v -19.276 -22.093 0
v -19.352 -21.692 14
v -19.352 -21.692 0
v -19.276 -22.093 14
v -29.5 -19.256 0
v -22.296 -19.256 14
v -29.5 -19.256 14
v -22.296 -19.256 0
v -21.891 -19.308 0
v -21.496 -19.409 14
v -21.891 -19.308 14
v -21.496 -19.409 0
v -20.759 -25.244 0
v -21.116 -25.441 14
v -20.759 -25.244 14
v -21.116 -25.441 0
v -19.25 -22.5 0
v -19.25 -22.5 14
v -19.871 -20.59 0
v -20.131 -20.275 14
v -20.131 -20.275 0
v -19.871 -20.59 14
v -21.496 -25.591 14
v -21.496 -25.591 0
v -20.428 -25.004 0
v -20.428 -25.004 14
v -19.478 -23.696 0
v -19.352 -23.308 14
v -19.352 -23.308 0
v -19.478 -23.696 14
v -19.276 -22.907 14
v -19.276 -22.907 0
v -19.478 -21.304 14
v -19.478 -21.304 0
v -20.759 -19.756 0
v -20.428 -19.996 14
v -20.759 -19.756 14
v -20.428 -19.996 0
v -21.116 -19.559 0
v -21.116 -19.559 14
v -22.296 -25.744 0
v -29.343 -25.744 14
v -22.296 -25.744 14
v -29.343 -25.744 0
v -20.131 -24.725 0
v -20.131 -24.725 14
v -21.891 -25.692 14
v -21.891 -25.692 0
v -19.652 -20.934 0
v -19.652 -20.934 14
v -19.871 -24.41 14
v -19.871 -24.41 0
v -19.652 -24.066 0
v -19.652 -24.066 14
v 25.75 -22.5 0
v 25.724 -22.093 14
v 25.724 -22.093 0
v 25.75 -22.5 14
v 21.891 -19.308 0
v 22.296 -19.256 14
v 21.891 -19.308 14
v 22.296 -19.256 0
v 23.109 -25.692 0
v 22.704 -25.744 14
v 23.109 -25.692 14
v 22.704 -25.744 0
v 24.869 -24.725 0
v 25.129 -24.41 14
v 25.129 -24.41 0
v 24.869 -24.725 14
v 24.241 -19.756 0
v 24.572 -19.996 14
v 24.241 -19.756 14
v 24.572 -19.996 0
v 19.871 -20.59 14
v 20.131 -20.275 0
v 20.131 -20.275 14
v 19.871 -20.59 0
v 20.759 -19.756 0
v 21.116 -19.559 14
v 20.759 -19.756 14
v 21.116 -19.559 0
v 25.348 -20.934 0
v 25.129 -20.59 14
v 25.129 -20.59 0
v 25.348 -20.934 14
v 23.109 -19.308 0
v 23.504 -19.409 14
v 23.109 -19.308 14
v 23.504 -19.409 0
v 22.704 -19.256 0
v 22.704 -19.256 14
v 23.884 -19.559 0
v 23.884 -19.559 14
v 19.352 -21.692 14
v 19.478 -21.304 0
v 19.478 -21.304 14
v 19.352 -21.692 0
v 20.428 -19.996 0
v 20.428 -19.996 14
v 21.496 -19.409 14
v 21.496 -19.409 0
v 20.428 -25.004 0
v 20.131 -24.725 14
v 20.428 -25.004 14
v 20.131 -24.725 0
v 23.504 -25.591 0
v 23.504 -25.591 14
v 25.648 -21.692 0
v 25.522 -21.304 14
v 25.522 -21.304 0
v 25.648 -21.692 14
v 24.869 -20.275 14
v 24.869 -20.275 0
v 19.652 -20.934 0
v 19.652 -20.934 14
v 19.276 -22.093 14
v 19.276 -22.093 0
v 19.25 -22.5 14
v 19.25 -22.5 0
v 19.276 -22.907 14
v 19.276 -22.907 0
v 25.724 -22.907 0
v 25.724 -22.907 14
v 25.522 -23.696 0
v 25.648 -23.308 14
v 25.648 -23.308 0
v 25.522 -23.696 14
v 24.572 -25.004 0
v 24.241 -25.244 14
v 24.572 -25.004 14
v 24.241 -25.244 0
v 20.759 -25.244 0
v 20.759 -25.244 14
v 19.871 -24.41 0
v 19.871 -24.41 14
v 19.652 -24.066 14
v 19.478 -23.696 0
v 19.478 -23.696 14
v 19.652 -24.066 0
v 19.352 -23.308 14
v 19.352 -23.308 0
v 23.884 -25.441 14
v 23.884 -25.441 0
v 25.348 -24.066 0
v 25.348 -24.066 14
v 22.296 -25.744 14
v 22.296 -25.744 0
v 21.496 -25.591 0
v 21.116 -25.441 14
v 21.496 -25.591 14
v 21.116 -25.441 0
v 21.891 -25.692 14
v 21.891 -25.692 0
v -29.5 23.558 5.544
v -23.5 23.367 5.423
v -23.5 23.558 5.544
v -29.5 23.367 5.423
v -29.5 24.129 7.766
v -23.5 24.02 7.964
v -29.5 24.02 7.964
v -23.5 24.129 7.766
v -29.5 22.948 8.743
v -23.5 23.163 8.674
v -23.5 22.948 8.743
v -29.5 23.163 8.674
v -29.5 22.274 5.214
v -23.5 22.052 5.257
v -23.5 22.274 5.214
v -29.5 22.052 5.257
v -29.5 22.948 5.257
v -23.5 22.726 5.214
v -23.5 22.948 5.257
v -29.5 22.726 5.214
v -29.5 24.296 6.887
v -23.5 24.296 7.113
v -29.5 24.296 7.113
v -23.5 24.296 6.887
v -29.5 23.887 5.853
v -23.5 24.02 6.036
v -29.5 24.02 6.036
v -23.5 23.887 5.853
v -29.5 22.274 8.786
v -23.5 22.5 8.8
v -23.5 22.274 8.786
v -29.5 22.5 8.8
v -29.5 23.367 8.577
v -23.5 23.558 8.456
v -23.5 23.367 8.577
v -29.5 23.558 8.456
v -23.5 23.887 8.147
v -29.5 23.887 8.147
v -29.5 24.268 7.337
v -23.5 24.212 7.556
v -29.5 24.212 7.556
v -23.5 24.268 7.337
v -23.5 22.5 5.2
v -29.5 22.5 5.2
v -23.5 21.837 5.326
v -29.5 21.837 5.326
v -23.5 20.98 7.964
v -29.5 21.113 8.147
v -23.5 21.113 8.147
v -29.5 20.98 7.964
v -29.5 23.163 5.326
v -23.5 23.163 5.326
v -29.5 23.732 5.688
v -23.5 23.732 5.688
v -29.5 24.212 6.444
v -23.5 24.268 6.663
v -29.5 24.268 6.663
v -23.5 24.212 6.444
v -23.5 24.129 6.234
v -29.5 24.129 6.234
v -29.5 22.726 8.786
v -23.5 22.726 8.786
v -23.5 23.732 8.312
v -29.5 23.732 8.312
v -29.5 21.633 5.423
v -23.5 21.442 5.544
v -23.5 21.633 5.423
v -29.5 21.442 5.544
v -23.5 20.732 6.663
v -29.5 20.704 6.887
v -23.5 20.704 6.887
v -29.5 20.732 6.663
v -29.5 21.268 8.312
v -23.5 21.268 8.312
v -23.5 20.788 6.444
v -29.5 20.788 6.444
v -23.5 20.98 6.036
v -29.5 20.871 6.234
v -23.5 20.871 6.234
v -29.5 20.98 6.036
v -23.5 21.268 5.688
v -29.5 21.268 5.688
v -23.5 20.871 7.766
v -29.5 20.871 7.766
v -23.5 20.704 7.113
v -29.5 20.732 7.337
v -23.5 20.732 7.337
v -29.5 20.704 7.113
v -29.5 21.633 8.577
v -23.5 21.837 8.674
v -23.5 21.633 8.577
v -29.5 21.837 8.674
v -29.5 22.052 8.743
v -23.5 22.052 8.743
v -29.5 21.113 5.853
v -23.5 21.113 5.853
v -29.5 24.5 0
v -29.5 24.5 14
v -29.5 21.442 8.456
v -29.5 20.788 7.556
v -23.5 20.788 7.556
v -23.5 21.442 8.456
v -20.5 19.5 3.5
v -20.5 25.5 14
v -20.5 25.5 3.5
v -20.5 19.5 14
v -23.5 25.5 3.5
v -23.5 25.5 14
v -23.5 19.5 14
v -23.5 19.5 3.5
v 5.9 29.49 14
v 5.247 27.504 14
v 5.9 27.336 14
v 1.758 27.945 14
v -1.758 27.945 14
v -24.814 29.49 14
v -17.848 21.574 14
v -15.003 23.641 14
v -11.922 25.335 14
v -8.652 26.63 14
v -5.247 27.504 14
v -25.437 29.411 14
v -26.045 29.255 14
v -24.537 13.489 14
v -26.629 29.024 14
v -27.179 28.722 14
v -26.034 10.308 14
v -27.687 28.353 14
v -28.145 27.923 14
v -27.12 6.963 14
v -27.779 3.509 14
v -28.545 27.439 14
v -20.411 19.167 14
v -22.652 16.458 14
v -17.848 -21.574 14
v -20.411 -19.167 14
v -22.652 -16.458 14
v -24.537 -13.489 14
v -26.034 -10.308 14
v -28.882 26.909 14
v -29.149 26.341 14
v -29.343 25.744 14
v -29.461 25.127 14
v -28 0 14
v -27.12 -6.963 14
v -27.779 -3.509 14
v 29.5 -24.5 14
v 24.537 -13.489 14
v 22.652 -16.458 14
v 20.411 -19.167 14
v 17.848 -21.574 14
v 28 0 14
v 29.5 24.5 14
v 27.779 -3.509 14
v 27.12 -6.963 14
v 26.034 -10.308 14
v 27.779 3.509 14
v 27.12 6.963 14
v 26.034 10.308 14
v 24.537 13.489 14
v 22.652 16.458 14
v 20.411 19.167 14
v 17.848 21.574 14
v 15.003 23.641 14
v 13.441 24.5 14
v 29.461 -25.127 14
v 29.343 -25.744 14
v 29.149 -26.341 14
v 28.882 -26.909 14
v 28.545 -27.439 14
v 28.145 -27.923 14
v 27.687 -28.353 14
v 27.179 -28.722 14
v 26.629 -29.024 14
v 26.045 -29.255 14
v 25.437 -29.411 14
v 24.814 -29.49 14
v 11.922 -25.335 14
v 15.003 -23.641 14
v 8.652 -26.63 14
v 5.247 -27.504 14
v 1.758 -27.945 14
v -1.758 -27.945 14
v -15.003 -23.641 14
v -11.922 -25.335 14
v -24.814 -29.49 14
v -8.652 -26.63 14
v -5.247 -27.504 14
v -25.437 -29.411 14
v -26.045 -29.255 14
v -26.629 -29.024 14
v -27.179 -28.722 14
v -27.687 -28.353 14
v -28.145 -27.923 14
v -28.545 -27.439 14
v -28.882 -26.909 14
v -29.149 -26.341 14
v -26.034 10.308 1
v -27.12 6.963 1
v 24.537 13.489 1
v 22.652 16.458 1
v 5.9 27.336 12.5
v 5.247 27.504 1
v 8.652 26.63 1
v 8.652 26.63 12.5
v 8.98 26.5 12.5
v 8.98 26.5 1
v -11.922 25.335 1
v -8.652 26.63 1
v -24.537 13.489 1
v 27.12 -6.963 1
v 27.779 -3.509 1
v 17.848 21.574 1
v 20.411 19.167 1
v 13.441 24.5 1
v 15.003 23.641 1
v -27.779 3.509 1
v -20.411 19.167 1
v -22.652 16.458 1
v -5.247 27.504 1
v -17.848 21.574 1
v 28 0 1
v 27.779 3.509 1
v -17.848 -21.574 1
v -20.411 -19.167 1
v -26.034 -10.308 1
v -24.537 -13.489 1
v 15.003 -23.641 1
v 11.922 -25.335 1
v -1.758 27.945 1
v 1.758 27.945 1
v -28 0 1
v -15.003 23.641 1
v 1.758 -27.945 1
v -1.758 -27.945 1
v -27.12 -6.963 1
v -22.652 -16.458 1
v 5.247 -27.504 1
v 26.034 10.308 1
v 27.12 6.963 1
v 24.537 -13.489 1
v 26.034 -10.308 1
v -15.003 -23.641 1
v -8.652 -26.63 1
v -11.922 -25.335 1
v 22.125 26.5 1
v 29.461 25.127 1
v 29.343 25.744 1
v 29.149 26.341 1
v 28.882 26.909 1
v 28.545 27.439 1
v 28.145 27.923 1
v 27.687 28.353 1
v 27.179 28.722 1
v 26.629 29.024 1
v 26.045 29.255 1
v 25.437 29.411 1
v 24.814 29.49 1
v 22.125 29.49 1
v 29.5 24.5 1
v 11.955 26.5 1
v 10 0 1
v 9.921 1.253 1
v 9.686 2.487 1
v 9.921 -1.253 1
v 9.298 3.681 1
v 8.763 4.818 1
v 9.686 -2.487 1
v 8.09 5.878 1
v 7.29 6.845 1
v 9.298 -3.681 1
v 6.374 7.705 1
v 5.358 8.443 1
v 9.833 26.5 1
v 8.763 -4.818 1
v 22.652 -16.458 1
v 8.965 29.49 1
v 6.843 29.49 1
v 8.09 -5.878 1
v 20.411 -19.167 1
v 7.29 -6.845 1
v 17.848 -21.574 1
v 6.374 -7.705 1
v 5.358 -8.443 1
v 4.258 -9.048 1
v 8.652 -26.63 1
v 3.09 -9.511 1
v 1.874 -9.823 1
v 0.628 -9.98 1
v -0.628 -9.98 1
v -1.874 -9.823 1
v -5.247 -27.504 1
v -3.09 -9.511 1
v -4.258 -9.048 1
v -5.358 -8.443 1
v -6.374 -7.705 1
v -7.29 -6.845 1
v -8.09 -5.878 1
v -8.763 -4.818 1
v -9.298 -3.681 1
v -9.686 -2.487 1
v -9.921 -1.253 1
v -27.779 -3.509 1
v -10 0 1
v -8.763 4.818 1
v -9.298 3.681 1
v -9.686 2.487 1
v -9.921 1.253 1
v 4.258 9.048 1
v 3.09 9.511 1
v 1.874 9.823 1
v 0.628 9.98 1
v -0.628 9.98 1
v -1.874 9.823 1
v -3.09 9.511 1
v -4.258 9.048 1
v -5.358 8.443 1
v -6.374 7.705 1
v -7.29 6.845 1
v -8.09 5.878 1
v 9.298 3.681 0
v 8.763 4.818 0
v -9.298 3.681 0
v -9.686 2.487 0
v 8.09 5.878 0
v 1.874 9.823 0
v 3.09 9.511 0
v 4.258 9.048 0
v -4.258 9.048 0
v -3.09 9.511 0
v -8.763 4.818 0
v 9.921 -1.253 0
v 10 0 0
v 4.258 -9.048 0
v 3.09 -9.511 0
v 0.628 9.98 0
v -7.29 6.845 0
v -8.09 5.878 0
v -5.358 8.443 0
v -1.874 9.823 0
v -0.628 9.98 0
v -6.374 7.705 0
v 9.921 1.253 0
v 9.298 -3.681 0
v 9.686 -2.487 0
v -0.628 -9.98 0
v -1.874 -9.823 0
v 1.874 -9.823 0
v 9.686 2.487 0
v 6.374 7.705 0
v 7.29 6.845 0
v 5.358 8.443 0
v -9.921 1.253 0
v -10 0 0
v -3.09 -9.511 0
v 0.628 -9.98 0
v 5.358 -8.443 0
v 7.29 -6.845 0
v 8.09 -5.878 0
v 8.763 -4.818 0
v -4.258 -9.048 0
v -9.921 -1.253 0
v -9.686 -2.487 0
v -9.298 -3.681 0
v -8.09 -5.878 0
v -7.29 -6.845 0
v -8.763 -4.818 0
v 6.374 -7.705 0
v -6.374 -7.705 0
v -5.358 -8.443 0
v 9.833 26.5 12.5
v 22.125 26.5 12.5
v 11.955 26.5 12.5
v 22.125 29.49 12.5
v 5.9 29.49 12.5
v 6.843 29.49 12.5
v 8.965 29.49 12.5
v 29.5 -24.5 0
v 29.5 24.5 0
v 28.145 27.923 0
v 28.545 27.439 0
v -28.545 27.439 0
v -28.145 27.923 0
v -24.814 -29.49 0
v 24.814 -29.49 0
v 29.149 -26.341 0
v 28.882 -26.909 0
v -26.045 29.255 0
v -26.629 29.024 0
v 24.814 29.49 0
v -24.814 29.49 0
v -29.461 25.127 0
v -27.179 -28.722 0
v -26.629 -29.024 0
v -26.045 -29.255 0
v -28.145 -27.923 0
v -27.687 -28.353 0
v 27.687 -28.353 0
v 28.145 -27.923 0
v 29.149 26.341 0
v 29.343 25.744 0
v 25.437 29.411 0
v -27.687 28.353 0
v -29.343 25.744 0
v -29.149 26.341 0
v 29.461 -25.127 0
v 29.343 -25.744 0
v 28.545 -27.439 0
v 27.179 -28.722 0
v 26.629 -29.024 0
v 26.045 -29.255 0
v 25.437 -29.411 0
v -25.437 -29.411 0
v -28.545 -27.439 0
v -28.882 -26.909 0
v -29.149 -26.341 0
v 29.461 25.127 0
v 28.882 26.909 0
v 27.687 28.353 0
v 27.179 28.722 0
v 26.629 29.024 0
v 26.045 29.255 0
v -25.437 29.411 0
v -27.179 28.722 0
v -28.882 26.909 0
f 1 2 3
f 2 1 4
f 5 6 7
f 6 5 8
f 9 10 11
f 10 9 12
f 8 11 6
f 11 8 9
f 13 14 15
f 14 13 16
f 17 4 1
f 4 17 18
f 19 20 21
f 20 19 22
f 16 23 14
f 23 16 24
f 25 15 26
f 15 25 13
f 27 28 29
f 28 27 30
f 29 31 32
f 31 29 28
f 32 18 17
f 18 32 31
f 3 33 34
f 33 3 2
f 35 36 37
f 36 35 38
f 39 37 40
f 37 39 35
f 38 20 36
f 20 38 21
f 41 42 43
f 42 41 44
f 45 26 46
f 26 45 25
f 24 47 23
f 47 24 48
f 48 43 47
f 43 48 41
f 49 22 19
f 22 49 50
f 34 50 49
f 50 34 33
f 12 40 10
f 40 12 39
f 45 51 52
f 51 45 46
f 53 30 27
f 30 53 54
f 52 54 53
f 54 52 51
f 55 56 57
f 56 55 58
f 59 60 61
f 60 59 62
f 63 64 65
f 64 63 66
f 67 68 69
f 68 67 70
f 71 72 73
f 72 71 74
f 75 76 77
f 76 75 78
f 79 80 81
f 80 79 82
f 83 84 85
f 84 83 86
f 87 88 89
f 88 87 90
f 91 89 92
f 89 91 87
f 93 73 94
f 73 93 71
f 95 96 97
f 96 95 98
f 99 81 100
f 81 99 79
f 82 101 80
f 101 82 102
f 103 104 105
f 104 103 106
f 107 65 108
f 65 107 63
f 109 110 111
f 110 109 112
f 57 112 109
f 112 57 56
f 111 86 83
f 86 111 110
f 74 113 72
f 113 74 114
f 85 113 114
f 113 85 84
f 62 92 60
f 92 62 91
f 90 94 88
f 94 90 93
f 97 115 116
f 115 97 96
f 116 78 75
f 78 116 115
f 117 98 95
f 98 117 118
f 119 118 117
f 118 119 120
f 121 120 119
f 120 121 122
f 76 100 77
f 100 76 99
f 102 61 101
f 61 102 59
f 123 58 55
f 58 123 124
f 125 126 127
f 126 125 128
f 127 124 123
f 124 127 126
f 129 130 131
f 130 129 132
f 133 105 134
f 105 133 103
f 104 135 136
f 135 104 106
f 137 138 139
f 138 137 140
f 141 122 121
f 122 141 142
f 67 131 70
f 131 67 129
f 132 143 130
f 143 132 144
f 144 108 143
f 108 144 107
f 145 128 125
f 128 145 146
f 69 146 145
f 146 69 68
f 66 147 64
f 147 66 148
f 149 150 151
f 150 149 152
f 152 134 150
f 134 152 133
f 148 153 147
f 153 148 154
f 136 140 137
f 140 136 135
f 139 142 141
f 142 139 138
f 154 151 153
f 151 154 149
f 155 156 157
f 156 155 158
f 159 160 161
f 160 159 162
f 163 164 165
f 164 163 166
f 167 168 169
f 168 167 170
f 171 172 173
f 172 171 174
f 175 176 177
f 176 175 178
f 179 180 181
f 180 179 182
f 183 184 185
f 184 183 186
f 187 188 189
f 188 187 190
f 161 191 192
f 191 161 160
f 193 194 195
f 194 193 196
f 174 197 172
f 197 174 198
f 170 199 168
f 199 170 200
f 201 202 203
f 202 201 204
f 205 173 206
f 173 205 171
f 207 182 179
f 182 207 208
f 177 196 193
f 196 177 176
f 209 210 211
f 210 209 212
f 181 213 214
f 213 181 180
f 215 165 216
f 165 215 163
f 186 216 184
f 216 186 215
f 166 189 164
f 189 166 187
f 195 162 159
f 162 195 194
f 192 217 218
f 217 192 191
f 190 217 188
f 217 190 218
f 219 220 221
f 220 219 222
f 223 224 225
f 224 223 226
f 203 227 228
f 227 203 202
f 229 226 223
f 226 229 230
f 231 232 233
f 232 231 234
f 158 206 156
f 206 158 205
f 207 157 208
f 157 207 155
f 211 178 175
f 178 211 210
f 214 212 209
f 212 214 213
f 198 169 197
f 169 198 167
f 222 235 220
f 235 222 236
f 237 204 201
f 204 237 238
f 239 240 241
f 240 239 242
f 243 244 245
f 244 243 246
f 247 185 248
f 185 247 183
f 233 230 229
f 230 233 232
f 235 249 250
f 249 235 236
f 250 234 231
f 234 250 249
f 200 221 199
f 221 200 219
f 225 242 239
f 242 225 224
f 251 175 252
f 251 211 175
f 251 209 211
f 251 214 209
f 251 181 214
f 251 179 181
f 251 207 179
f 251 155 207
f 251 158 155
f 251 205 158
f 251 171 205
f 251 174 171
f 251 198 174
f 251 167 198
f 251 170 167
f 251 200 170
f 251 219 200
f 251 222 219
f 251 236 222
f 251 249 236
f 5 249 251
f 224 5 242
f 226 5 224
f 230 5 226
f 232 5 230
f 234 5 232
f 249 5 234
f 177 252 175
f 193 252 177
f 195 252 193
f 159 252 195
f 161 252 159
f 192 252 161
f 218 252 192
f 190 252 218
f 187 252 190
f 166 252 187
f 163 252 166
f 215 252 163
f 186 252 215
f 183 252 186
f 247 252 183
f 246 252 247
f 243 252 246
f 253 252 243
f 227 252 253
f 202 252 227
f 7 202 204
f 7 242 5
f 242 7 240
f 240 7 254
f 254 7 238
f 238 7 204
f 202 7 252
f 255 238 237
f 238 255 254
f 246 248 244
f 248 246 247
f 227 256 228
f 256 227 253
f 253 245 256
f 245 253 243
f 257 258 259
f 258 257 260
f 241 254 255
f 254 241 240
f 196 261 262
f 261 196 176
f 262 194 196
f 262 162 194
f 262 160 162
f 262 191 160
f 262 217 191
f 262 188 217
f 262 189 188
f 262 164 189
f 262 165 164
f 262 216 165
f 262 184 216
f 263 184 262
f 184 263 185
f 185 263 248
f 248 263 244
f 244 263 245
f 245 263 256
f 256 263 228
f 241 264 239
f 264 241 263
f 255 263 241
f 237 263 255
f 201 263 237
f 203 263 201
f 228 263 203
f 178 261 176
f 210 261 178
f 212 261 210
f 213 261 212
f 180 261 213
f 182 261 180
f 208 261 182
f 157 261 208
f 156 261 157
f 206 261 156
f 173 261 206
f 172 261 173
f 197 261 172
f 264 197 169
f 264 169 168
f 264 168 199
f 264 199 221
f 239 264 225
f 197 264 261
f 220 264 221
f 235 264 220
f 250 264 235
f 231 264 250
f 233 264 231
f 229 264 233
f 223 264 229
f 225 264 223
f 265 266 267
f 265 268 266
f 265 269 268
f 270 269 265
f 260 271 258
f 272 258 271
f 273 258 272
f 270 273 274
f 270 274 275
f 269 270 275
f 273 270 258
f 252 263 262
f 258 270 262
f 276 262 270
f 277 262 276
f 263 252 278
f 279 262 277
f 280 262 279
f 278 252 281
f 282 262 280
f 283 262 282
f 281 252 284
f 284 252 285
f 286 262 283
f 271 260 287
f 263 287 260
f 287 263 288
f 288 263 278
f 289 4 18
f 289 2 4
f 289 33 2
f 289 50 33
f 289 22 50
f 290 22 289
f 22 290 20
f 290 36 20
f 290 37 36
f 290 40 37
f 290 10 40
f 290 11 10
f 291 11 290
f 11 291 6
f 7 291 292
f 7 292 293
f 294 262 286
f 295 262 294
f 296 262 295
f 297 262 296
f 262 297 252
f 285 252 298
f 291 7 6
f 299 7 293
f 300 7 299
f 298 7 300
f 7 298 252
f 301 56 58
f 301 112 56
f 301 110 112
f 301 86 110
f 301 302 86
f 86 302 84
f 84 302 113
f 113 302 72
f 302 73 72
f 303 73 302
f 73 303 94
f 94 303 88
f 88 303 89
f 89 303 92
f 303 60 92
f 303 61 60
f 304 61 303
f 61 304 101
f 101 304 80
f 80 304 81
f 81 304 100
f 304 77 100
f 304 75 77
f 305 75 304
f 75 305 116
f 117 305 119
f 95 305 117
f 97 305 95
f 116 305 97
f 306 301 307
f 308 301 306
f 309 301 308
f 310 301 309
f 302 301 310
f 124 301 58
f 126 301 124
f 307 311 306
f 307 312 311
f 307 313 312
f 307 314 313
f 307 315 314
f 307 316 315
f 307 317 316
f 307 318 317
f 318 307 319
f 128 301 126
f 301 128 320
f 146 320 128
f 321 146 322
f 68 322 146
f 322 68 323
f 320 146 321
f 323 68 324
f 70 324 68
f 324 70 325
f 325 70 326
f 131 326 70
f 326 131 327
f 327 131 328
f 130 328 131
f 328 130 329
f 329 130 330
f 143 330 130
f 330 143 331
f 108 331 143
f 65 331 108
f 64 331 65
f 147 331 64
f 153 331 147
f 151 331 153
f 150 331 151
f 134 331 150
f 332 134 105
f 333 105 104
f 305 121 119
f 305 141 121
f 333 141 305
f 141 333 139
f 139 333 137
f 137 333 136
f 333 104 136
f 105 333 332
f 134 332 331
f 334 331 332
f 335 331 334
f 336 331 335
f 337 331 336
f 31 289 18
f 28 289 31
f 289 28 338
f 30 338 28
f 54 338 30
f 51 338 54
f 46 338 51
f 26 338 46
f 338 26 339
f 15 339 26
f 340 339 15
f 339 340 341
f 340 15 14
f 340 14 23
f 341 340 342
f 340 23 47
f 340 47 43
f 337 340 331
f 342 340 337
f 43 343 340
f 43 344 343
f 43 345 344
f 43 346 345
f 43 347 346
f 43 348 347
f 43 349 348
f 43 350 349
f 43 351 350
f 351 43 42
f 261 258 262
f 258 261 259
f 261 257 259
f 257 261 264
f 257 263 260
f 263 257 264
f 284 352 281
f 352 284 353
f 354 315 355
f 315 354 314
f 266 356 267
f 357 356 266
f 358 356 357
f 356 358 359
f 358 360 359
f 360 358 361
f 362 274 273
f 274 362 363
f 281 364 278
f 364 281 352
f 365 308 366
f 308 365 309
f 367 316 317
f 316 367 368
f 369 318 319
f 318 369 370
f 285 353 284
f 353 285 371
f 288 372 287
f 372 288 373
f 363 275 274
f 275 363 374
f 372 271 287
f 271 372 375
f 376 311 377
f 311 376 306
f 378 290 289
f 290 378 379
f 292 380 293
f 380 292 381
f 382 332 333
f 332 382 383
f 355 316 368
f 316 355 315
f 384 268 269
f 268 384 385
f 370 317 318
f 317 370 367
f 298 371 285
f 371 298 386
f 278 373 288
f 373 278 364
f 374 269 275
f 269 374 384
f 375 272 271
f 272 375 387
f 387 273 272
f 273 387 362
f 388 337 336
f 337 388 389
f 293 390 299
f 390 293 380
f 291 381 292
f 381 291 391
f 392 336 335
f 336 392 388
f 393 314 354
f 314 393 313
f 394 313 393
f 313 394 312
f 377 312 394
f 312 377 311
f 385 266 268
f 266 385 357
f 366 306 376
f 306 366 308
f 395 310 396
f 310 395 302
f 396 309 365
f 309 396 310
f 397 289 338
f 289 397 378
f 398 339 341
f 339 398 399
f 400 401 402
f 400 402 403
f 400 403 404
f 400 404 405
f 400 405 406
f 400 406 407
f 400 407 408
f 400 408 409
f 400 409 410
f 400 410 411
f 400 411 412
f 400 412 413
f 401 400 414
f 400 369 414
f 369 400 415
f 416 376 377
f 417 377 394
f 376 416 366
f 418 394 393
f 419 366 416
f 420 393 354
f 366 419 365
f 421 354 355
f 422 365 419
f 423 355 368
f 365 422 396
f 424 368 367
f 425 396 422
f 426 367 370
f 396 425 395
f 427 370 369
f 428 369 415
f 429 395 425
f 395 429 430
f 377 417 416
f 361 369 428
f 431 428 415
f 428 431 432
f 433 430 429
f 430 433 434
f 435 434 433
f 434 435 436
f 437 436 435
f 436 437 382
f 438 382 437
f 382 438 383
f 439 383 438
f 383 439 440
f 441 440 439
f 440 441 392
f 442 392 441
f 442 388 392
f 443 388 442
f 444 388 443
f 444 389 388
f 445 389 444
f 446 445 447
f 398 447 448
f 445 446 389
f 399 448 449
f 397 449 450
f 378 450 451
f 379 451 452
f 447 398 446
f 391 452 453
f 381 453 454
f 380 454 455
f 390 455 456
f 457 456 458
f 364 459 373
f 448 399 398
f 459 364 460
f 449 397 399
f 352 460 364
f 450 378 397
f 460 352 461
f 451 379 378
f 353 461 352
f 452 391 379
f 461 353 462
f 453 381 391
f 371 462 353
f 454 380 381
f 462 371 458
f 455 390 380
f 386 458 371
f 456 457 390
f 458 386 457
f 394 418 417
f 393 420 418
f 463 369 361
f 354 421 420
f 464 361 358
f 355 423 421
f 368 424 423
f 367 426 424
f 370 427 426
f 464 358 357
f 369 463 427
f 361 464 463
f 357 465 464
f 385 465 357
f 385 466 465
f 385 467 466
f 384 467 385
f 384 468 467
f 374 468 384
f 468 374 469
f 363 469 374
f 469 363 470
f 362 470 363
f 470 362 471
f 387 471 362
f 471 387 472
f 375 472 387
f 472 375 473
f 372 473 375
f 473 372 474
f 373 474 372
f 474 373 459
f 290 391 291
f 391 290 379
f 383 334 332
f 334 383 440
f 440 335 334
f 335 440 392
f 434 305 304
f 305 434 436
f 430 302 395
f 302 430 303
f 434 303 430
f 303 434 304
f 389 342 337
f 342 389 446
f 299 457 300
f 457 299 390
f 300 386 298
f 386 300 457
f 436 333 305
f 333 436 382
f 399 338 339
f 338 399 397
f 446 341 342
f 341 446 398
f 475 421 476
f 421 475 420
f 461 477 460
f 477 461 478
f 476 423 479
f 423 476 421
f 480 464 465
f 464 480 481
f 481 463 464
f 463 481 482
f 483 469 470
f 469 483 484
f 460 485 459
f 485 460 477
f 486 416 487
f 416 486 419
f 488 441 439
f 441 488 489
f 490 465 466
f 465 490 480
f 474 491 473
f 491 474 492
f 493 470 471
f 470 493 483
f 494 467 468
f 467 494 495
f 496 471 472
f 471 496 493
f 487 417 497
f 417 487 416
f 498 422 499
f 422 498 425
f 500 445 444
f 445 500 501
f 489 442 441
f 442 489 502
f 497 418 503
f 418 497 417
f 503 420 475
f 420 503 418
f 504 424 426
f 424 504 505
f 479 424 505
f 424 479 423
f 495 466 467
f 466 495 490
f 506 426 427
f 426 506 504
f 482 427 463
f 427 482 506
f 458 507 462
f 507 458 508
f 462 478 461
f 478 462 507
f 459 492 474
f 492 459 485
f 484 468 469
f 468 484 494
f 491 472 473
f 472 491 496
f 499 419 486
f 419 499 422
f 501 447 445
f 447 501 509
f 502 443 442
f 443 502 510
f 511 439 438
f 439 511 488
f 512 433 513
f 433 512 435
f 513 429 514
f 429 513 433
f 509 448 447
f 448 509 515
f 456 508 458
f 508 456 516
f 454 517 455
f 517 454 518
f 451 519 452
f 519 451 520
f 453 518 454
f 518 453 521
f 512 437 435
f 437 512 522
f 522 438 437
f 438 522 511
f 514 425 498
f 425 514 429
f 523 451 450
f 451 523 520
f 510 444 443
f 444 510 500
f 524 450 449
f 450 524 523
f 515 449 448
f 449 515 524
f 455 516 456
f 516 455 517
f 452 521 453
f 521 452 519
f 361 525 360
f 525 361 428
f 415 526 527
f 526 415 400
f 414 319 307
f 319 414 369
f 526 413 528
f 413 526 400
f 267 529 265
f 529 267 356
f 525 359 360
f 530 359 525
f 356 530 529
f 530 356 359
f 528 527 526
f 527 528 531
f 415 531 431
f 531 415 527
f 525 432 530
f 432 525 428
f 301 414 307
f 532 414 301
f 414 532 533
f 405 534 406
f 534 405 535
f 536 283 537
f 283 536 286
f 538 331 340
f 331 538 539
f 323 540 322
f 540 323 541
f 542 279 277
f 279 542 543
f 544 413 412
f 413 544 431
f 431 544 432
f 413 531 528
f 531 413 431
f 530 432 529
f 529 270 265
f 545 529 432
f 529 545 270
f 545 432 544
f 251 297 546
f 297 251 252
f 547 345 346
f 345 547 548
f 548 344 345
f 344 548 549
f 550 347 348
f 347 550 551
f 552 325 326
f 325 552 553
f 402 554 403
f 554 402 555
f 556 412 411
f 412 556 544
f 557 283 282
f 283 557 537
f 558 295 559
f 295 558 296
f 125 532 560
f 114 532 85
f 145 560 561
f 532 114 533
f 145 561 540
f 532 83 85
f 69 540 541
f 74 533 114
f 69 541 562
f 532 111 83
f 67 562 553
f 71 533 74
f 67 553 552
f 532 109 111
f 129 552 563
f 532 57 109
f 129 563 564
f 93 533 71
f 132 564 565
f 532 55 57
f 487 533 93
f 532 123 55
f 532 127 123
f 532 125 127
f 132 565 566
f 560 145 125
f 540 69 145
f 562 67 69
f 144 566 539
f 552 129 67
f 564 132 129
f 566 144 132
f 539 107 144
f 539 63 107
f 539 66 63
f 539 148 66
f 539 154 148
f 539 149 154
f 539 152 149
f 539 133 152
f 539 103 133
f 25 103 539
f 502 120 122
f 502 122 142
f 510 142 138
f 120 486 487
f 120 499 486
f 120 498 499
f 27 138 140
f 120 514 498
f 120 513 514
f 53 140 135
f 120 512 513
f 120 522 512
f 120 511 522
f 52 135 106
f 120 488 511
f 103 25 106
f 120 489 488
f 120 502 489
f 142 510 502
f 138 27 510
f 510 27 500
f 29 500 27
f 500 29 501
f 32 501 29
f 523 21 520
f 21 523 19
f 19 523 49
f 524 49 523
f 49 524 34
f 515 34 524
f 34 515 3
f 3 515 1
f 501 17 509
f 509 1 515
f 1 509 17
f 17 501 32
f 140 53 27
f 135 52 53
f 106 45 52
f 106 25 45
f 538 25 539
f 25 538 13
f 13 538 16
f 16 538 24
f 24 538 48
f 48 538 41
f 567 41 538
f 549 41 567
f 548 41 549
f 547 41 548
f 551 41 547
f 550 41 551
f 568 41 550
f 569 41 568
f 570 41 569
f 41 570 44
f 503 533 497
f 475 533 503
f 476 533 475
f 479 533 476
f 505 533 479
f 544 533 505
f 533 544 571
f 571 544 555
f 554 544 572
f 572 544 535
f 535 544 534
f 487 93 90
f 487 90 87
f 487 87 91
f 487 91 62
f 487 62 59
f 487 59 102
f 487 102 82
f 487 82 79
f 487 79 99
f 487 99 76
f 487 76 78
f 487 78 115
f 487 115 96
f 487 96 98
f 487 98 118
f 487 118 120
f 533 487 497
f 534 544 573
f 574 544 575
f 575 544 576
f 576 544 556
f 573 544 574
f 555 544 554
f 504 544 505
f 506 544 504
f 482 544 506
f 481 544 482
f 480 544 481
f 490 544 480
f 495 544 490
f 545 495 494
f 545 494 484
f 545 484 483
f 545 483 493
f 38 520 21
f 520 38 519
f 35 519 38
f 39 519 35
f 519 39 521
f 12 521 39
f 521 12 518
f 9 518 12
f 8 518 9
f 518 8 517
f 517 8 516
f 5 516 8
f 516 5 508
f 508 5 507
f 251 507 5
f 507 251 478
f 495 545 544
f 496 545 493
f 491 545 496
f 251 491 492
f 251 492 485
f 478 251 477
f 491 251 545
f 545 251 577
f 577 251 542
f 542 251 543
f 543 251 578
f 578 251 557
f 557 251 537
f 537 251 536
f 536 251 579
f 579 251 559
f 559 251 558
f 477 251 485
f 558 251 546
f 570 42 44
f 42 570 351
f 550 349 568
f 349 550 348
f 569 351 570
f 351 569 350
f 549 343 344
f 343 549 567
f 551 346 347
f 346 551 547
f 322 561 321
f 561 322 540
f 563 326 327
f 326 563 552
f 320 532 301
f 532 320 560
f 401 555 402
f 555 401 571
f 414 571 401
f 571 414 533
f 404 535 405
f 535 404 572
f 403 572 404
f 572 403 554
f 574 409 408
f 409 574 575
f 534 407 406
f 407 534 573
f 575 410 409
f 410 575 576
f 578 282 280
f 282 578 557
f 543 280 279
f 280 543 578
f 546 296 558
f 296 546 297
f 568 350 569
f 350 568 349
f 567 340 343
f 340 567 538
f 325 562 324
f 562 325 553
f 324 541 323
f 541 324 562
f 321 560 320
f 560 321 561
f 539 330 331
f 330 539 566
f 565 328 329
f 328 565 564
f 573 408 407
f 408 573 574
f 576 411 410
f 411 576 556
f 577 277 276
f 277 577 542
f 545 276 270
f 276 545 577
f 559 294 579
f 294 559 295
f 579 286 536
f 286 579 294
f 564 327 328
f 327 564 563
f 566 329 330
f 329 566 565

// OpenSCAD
$fn = 50;


difference() {
	union() {
		translate(v = [0, 0, 0]) {
			rotate(a = [0, 0, 0]) {
				hull() {
					translate(v = [-24.5000000000, 24.5000000000, 0]) {
						rotate(a = [0, 0, 0]) {
							translate(v = [0, 0, 0]) {
								rotate(a = [0, 0, 0]) {
									cylinder(h = 14, r = 5);
								}
							}
						}
					}
					translate(v = [24.5000000000, 24.5000000000, 0]) {
						rotate(a = [0, 0, 0]) {
							translate(v = [0, 0, 0]) {
								rotate(a = [0, 0, 0]) {
									cylinder(h = 14, r = 5);
								}
							}
						}
					}
					translate(v = [-24.5000000000, -24.5000000000, 0]) {
						rotate(a = [0, 0, 0]) {
							translate(v = [0, 0, 0]) {
								rotate(a = [0, 0, 0]) {
									cylinder(h = 14, r = 5);
								}
							}
						}
					}
					translate(v = [24.5000000000, -24.5000000000, 0]) {
						rotate(a = [0, 0, 0]) {
							translate(v = [0, 0, 0]) {
								rotate(a = [0, 0, 0]) {
									cylinder(h = 14, r = 5);
								}
							}
						}
					}
				}
			}
		}
	}
	union() {
		translate(v = [-30.0000000000, -22.5000000000, -125]) {
			rotate(a = [0, 0, 0]) {
				hull() {
					translate(v = [7.5000000000, 0, 0]) {
						rotate(a = [0, 0, 0]) {
							translate(v = [0, 0, 0]) {
								rotate(a = [0, 0, 0]) {
									cylinder(h = 250, r = 3.2500000000);
								}
							}
						}
					}
					translate(v = [-7.5000000000, 0, 0]) {
						rotate(a = [0, 0, 0]) {
							translate(v = [0, 0, 0]) {
								rotate(a = [0, 0, 0]) {
									cylinder(h = 250, r = 3.2500000000);
								}
							}
						}
					}
				}
			}
		}
		translate(v = [22.5000000000, -22.5000000000, -125.0000000000]) {
			rotate(a = [0, 0, 0]) {
				cylinder(h = 250, r = 3.2500000000);
			}
		}
		translate(v = [-29.5000000000, 22.5000000000, 7.0000000000]) {
			rotate(a = [0, 90, 0]) {
				cylinder(h = 9, r = 1.8000000000);
			}
		}
		translate(v = [-23.5000000000, 19.5000000000, 3.5000000000]) {
			rotate(a = [0, 0, 0]) {
				cube(size = [3, 6, 10.5000000000]);
			}
		}
		translate(v = [0, 0, 1.0000000000]) {
			rotate(a = [0, 0, 0]) {
				cylinder(h = 16, r = 28.0000000000);
			}
		}
		translate(v = [0, 0, -7.0000000000]) {
			rotate(a = [0, 0, 0]) {
				cylinder(h = 14, r = 10.0000000000);
			}
		}
		translate(v = [0.0000000000, 24.5000000000, 1]) {
			rotate(a = [0, 0, 0]) {
				cube(size = [29.5000000000, 2, 16]);
			}
		}
		translate(v = [22.1250000000, 24.5000000000, 1]) {
			rotate(a = [0, 0, 0]) {
				cube(size = [7.3750000000, 5, 16]);
			}
		}
		translate(v = [5.9000000000, 24.5000000000, 12.5000000000]) {
			rotate(a = [0, 0, 0]) {
				cube(size = [23.6000000000, 5, 1.5000000000]);
			}
		}
		translate(v = [6.0833333333, 30.2500000000, 1]) {
			rotate(a = [0, 0, -45]) {
				cube(size = [7.5000000000, 1.5000000000, 16]);
			}
		}
	}
}
